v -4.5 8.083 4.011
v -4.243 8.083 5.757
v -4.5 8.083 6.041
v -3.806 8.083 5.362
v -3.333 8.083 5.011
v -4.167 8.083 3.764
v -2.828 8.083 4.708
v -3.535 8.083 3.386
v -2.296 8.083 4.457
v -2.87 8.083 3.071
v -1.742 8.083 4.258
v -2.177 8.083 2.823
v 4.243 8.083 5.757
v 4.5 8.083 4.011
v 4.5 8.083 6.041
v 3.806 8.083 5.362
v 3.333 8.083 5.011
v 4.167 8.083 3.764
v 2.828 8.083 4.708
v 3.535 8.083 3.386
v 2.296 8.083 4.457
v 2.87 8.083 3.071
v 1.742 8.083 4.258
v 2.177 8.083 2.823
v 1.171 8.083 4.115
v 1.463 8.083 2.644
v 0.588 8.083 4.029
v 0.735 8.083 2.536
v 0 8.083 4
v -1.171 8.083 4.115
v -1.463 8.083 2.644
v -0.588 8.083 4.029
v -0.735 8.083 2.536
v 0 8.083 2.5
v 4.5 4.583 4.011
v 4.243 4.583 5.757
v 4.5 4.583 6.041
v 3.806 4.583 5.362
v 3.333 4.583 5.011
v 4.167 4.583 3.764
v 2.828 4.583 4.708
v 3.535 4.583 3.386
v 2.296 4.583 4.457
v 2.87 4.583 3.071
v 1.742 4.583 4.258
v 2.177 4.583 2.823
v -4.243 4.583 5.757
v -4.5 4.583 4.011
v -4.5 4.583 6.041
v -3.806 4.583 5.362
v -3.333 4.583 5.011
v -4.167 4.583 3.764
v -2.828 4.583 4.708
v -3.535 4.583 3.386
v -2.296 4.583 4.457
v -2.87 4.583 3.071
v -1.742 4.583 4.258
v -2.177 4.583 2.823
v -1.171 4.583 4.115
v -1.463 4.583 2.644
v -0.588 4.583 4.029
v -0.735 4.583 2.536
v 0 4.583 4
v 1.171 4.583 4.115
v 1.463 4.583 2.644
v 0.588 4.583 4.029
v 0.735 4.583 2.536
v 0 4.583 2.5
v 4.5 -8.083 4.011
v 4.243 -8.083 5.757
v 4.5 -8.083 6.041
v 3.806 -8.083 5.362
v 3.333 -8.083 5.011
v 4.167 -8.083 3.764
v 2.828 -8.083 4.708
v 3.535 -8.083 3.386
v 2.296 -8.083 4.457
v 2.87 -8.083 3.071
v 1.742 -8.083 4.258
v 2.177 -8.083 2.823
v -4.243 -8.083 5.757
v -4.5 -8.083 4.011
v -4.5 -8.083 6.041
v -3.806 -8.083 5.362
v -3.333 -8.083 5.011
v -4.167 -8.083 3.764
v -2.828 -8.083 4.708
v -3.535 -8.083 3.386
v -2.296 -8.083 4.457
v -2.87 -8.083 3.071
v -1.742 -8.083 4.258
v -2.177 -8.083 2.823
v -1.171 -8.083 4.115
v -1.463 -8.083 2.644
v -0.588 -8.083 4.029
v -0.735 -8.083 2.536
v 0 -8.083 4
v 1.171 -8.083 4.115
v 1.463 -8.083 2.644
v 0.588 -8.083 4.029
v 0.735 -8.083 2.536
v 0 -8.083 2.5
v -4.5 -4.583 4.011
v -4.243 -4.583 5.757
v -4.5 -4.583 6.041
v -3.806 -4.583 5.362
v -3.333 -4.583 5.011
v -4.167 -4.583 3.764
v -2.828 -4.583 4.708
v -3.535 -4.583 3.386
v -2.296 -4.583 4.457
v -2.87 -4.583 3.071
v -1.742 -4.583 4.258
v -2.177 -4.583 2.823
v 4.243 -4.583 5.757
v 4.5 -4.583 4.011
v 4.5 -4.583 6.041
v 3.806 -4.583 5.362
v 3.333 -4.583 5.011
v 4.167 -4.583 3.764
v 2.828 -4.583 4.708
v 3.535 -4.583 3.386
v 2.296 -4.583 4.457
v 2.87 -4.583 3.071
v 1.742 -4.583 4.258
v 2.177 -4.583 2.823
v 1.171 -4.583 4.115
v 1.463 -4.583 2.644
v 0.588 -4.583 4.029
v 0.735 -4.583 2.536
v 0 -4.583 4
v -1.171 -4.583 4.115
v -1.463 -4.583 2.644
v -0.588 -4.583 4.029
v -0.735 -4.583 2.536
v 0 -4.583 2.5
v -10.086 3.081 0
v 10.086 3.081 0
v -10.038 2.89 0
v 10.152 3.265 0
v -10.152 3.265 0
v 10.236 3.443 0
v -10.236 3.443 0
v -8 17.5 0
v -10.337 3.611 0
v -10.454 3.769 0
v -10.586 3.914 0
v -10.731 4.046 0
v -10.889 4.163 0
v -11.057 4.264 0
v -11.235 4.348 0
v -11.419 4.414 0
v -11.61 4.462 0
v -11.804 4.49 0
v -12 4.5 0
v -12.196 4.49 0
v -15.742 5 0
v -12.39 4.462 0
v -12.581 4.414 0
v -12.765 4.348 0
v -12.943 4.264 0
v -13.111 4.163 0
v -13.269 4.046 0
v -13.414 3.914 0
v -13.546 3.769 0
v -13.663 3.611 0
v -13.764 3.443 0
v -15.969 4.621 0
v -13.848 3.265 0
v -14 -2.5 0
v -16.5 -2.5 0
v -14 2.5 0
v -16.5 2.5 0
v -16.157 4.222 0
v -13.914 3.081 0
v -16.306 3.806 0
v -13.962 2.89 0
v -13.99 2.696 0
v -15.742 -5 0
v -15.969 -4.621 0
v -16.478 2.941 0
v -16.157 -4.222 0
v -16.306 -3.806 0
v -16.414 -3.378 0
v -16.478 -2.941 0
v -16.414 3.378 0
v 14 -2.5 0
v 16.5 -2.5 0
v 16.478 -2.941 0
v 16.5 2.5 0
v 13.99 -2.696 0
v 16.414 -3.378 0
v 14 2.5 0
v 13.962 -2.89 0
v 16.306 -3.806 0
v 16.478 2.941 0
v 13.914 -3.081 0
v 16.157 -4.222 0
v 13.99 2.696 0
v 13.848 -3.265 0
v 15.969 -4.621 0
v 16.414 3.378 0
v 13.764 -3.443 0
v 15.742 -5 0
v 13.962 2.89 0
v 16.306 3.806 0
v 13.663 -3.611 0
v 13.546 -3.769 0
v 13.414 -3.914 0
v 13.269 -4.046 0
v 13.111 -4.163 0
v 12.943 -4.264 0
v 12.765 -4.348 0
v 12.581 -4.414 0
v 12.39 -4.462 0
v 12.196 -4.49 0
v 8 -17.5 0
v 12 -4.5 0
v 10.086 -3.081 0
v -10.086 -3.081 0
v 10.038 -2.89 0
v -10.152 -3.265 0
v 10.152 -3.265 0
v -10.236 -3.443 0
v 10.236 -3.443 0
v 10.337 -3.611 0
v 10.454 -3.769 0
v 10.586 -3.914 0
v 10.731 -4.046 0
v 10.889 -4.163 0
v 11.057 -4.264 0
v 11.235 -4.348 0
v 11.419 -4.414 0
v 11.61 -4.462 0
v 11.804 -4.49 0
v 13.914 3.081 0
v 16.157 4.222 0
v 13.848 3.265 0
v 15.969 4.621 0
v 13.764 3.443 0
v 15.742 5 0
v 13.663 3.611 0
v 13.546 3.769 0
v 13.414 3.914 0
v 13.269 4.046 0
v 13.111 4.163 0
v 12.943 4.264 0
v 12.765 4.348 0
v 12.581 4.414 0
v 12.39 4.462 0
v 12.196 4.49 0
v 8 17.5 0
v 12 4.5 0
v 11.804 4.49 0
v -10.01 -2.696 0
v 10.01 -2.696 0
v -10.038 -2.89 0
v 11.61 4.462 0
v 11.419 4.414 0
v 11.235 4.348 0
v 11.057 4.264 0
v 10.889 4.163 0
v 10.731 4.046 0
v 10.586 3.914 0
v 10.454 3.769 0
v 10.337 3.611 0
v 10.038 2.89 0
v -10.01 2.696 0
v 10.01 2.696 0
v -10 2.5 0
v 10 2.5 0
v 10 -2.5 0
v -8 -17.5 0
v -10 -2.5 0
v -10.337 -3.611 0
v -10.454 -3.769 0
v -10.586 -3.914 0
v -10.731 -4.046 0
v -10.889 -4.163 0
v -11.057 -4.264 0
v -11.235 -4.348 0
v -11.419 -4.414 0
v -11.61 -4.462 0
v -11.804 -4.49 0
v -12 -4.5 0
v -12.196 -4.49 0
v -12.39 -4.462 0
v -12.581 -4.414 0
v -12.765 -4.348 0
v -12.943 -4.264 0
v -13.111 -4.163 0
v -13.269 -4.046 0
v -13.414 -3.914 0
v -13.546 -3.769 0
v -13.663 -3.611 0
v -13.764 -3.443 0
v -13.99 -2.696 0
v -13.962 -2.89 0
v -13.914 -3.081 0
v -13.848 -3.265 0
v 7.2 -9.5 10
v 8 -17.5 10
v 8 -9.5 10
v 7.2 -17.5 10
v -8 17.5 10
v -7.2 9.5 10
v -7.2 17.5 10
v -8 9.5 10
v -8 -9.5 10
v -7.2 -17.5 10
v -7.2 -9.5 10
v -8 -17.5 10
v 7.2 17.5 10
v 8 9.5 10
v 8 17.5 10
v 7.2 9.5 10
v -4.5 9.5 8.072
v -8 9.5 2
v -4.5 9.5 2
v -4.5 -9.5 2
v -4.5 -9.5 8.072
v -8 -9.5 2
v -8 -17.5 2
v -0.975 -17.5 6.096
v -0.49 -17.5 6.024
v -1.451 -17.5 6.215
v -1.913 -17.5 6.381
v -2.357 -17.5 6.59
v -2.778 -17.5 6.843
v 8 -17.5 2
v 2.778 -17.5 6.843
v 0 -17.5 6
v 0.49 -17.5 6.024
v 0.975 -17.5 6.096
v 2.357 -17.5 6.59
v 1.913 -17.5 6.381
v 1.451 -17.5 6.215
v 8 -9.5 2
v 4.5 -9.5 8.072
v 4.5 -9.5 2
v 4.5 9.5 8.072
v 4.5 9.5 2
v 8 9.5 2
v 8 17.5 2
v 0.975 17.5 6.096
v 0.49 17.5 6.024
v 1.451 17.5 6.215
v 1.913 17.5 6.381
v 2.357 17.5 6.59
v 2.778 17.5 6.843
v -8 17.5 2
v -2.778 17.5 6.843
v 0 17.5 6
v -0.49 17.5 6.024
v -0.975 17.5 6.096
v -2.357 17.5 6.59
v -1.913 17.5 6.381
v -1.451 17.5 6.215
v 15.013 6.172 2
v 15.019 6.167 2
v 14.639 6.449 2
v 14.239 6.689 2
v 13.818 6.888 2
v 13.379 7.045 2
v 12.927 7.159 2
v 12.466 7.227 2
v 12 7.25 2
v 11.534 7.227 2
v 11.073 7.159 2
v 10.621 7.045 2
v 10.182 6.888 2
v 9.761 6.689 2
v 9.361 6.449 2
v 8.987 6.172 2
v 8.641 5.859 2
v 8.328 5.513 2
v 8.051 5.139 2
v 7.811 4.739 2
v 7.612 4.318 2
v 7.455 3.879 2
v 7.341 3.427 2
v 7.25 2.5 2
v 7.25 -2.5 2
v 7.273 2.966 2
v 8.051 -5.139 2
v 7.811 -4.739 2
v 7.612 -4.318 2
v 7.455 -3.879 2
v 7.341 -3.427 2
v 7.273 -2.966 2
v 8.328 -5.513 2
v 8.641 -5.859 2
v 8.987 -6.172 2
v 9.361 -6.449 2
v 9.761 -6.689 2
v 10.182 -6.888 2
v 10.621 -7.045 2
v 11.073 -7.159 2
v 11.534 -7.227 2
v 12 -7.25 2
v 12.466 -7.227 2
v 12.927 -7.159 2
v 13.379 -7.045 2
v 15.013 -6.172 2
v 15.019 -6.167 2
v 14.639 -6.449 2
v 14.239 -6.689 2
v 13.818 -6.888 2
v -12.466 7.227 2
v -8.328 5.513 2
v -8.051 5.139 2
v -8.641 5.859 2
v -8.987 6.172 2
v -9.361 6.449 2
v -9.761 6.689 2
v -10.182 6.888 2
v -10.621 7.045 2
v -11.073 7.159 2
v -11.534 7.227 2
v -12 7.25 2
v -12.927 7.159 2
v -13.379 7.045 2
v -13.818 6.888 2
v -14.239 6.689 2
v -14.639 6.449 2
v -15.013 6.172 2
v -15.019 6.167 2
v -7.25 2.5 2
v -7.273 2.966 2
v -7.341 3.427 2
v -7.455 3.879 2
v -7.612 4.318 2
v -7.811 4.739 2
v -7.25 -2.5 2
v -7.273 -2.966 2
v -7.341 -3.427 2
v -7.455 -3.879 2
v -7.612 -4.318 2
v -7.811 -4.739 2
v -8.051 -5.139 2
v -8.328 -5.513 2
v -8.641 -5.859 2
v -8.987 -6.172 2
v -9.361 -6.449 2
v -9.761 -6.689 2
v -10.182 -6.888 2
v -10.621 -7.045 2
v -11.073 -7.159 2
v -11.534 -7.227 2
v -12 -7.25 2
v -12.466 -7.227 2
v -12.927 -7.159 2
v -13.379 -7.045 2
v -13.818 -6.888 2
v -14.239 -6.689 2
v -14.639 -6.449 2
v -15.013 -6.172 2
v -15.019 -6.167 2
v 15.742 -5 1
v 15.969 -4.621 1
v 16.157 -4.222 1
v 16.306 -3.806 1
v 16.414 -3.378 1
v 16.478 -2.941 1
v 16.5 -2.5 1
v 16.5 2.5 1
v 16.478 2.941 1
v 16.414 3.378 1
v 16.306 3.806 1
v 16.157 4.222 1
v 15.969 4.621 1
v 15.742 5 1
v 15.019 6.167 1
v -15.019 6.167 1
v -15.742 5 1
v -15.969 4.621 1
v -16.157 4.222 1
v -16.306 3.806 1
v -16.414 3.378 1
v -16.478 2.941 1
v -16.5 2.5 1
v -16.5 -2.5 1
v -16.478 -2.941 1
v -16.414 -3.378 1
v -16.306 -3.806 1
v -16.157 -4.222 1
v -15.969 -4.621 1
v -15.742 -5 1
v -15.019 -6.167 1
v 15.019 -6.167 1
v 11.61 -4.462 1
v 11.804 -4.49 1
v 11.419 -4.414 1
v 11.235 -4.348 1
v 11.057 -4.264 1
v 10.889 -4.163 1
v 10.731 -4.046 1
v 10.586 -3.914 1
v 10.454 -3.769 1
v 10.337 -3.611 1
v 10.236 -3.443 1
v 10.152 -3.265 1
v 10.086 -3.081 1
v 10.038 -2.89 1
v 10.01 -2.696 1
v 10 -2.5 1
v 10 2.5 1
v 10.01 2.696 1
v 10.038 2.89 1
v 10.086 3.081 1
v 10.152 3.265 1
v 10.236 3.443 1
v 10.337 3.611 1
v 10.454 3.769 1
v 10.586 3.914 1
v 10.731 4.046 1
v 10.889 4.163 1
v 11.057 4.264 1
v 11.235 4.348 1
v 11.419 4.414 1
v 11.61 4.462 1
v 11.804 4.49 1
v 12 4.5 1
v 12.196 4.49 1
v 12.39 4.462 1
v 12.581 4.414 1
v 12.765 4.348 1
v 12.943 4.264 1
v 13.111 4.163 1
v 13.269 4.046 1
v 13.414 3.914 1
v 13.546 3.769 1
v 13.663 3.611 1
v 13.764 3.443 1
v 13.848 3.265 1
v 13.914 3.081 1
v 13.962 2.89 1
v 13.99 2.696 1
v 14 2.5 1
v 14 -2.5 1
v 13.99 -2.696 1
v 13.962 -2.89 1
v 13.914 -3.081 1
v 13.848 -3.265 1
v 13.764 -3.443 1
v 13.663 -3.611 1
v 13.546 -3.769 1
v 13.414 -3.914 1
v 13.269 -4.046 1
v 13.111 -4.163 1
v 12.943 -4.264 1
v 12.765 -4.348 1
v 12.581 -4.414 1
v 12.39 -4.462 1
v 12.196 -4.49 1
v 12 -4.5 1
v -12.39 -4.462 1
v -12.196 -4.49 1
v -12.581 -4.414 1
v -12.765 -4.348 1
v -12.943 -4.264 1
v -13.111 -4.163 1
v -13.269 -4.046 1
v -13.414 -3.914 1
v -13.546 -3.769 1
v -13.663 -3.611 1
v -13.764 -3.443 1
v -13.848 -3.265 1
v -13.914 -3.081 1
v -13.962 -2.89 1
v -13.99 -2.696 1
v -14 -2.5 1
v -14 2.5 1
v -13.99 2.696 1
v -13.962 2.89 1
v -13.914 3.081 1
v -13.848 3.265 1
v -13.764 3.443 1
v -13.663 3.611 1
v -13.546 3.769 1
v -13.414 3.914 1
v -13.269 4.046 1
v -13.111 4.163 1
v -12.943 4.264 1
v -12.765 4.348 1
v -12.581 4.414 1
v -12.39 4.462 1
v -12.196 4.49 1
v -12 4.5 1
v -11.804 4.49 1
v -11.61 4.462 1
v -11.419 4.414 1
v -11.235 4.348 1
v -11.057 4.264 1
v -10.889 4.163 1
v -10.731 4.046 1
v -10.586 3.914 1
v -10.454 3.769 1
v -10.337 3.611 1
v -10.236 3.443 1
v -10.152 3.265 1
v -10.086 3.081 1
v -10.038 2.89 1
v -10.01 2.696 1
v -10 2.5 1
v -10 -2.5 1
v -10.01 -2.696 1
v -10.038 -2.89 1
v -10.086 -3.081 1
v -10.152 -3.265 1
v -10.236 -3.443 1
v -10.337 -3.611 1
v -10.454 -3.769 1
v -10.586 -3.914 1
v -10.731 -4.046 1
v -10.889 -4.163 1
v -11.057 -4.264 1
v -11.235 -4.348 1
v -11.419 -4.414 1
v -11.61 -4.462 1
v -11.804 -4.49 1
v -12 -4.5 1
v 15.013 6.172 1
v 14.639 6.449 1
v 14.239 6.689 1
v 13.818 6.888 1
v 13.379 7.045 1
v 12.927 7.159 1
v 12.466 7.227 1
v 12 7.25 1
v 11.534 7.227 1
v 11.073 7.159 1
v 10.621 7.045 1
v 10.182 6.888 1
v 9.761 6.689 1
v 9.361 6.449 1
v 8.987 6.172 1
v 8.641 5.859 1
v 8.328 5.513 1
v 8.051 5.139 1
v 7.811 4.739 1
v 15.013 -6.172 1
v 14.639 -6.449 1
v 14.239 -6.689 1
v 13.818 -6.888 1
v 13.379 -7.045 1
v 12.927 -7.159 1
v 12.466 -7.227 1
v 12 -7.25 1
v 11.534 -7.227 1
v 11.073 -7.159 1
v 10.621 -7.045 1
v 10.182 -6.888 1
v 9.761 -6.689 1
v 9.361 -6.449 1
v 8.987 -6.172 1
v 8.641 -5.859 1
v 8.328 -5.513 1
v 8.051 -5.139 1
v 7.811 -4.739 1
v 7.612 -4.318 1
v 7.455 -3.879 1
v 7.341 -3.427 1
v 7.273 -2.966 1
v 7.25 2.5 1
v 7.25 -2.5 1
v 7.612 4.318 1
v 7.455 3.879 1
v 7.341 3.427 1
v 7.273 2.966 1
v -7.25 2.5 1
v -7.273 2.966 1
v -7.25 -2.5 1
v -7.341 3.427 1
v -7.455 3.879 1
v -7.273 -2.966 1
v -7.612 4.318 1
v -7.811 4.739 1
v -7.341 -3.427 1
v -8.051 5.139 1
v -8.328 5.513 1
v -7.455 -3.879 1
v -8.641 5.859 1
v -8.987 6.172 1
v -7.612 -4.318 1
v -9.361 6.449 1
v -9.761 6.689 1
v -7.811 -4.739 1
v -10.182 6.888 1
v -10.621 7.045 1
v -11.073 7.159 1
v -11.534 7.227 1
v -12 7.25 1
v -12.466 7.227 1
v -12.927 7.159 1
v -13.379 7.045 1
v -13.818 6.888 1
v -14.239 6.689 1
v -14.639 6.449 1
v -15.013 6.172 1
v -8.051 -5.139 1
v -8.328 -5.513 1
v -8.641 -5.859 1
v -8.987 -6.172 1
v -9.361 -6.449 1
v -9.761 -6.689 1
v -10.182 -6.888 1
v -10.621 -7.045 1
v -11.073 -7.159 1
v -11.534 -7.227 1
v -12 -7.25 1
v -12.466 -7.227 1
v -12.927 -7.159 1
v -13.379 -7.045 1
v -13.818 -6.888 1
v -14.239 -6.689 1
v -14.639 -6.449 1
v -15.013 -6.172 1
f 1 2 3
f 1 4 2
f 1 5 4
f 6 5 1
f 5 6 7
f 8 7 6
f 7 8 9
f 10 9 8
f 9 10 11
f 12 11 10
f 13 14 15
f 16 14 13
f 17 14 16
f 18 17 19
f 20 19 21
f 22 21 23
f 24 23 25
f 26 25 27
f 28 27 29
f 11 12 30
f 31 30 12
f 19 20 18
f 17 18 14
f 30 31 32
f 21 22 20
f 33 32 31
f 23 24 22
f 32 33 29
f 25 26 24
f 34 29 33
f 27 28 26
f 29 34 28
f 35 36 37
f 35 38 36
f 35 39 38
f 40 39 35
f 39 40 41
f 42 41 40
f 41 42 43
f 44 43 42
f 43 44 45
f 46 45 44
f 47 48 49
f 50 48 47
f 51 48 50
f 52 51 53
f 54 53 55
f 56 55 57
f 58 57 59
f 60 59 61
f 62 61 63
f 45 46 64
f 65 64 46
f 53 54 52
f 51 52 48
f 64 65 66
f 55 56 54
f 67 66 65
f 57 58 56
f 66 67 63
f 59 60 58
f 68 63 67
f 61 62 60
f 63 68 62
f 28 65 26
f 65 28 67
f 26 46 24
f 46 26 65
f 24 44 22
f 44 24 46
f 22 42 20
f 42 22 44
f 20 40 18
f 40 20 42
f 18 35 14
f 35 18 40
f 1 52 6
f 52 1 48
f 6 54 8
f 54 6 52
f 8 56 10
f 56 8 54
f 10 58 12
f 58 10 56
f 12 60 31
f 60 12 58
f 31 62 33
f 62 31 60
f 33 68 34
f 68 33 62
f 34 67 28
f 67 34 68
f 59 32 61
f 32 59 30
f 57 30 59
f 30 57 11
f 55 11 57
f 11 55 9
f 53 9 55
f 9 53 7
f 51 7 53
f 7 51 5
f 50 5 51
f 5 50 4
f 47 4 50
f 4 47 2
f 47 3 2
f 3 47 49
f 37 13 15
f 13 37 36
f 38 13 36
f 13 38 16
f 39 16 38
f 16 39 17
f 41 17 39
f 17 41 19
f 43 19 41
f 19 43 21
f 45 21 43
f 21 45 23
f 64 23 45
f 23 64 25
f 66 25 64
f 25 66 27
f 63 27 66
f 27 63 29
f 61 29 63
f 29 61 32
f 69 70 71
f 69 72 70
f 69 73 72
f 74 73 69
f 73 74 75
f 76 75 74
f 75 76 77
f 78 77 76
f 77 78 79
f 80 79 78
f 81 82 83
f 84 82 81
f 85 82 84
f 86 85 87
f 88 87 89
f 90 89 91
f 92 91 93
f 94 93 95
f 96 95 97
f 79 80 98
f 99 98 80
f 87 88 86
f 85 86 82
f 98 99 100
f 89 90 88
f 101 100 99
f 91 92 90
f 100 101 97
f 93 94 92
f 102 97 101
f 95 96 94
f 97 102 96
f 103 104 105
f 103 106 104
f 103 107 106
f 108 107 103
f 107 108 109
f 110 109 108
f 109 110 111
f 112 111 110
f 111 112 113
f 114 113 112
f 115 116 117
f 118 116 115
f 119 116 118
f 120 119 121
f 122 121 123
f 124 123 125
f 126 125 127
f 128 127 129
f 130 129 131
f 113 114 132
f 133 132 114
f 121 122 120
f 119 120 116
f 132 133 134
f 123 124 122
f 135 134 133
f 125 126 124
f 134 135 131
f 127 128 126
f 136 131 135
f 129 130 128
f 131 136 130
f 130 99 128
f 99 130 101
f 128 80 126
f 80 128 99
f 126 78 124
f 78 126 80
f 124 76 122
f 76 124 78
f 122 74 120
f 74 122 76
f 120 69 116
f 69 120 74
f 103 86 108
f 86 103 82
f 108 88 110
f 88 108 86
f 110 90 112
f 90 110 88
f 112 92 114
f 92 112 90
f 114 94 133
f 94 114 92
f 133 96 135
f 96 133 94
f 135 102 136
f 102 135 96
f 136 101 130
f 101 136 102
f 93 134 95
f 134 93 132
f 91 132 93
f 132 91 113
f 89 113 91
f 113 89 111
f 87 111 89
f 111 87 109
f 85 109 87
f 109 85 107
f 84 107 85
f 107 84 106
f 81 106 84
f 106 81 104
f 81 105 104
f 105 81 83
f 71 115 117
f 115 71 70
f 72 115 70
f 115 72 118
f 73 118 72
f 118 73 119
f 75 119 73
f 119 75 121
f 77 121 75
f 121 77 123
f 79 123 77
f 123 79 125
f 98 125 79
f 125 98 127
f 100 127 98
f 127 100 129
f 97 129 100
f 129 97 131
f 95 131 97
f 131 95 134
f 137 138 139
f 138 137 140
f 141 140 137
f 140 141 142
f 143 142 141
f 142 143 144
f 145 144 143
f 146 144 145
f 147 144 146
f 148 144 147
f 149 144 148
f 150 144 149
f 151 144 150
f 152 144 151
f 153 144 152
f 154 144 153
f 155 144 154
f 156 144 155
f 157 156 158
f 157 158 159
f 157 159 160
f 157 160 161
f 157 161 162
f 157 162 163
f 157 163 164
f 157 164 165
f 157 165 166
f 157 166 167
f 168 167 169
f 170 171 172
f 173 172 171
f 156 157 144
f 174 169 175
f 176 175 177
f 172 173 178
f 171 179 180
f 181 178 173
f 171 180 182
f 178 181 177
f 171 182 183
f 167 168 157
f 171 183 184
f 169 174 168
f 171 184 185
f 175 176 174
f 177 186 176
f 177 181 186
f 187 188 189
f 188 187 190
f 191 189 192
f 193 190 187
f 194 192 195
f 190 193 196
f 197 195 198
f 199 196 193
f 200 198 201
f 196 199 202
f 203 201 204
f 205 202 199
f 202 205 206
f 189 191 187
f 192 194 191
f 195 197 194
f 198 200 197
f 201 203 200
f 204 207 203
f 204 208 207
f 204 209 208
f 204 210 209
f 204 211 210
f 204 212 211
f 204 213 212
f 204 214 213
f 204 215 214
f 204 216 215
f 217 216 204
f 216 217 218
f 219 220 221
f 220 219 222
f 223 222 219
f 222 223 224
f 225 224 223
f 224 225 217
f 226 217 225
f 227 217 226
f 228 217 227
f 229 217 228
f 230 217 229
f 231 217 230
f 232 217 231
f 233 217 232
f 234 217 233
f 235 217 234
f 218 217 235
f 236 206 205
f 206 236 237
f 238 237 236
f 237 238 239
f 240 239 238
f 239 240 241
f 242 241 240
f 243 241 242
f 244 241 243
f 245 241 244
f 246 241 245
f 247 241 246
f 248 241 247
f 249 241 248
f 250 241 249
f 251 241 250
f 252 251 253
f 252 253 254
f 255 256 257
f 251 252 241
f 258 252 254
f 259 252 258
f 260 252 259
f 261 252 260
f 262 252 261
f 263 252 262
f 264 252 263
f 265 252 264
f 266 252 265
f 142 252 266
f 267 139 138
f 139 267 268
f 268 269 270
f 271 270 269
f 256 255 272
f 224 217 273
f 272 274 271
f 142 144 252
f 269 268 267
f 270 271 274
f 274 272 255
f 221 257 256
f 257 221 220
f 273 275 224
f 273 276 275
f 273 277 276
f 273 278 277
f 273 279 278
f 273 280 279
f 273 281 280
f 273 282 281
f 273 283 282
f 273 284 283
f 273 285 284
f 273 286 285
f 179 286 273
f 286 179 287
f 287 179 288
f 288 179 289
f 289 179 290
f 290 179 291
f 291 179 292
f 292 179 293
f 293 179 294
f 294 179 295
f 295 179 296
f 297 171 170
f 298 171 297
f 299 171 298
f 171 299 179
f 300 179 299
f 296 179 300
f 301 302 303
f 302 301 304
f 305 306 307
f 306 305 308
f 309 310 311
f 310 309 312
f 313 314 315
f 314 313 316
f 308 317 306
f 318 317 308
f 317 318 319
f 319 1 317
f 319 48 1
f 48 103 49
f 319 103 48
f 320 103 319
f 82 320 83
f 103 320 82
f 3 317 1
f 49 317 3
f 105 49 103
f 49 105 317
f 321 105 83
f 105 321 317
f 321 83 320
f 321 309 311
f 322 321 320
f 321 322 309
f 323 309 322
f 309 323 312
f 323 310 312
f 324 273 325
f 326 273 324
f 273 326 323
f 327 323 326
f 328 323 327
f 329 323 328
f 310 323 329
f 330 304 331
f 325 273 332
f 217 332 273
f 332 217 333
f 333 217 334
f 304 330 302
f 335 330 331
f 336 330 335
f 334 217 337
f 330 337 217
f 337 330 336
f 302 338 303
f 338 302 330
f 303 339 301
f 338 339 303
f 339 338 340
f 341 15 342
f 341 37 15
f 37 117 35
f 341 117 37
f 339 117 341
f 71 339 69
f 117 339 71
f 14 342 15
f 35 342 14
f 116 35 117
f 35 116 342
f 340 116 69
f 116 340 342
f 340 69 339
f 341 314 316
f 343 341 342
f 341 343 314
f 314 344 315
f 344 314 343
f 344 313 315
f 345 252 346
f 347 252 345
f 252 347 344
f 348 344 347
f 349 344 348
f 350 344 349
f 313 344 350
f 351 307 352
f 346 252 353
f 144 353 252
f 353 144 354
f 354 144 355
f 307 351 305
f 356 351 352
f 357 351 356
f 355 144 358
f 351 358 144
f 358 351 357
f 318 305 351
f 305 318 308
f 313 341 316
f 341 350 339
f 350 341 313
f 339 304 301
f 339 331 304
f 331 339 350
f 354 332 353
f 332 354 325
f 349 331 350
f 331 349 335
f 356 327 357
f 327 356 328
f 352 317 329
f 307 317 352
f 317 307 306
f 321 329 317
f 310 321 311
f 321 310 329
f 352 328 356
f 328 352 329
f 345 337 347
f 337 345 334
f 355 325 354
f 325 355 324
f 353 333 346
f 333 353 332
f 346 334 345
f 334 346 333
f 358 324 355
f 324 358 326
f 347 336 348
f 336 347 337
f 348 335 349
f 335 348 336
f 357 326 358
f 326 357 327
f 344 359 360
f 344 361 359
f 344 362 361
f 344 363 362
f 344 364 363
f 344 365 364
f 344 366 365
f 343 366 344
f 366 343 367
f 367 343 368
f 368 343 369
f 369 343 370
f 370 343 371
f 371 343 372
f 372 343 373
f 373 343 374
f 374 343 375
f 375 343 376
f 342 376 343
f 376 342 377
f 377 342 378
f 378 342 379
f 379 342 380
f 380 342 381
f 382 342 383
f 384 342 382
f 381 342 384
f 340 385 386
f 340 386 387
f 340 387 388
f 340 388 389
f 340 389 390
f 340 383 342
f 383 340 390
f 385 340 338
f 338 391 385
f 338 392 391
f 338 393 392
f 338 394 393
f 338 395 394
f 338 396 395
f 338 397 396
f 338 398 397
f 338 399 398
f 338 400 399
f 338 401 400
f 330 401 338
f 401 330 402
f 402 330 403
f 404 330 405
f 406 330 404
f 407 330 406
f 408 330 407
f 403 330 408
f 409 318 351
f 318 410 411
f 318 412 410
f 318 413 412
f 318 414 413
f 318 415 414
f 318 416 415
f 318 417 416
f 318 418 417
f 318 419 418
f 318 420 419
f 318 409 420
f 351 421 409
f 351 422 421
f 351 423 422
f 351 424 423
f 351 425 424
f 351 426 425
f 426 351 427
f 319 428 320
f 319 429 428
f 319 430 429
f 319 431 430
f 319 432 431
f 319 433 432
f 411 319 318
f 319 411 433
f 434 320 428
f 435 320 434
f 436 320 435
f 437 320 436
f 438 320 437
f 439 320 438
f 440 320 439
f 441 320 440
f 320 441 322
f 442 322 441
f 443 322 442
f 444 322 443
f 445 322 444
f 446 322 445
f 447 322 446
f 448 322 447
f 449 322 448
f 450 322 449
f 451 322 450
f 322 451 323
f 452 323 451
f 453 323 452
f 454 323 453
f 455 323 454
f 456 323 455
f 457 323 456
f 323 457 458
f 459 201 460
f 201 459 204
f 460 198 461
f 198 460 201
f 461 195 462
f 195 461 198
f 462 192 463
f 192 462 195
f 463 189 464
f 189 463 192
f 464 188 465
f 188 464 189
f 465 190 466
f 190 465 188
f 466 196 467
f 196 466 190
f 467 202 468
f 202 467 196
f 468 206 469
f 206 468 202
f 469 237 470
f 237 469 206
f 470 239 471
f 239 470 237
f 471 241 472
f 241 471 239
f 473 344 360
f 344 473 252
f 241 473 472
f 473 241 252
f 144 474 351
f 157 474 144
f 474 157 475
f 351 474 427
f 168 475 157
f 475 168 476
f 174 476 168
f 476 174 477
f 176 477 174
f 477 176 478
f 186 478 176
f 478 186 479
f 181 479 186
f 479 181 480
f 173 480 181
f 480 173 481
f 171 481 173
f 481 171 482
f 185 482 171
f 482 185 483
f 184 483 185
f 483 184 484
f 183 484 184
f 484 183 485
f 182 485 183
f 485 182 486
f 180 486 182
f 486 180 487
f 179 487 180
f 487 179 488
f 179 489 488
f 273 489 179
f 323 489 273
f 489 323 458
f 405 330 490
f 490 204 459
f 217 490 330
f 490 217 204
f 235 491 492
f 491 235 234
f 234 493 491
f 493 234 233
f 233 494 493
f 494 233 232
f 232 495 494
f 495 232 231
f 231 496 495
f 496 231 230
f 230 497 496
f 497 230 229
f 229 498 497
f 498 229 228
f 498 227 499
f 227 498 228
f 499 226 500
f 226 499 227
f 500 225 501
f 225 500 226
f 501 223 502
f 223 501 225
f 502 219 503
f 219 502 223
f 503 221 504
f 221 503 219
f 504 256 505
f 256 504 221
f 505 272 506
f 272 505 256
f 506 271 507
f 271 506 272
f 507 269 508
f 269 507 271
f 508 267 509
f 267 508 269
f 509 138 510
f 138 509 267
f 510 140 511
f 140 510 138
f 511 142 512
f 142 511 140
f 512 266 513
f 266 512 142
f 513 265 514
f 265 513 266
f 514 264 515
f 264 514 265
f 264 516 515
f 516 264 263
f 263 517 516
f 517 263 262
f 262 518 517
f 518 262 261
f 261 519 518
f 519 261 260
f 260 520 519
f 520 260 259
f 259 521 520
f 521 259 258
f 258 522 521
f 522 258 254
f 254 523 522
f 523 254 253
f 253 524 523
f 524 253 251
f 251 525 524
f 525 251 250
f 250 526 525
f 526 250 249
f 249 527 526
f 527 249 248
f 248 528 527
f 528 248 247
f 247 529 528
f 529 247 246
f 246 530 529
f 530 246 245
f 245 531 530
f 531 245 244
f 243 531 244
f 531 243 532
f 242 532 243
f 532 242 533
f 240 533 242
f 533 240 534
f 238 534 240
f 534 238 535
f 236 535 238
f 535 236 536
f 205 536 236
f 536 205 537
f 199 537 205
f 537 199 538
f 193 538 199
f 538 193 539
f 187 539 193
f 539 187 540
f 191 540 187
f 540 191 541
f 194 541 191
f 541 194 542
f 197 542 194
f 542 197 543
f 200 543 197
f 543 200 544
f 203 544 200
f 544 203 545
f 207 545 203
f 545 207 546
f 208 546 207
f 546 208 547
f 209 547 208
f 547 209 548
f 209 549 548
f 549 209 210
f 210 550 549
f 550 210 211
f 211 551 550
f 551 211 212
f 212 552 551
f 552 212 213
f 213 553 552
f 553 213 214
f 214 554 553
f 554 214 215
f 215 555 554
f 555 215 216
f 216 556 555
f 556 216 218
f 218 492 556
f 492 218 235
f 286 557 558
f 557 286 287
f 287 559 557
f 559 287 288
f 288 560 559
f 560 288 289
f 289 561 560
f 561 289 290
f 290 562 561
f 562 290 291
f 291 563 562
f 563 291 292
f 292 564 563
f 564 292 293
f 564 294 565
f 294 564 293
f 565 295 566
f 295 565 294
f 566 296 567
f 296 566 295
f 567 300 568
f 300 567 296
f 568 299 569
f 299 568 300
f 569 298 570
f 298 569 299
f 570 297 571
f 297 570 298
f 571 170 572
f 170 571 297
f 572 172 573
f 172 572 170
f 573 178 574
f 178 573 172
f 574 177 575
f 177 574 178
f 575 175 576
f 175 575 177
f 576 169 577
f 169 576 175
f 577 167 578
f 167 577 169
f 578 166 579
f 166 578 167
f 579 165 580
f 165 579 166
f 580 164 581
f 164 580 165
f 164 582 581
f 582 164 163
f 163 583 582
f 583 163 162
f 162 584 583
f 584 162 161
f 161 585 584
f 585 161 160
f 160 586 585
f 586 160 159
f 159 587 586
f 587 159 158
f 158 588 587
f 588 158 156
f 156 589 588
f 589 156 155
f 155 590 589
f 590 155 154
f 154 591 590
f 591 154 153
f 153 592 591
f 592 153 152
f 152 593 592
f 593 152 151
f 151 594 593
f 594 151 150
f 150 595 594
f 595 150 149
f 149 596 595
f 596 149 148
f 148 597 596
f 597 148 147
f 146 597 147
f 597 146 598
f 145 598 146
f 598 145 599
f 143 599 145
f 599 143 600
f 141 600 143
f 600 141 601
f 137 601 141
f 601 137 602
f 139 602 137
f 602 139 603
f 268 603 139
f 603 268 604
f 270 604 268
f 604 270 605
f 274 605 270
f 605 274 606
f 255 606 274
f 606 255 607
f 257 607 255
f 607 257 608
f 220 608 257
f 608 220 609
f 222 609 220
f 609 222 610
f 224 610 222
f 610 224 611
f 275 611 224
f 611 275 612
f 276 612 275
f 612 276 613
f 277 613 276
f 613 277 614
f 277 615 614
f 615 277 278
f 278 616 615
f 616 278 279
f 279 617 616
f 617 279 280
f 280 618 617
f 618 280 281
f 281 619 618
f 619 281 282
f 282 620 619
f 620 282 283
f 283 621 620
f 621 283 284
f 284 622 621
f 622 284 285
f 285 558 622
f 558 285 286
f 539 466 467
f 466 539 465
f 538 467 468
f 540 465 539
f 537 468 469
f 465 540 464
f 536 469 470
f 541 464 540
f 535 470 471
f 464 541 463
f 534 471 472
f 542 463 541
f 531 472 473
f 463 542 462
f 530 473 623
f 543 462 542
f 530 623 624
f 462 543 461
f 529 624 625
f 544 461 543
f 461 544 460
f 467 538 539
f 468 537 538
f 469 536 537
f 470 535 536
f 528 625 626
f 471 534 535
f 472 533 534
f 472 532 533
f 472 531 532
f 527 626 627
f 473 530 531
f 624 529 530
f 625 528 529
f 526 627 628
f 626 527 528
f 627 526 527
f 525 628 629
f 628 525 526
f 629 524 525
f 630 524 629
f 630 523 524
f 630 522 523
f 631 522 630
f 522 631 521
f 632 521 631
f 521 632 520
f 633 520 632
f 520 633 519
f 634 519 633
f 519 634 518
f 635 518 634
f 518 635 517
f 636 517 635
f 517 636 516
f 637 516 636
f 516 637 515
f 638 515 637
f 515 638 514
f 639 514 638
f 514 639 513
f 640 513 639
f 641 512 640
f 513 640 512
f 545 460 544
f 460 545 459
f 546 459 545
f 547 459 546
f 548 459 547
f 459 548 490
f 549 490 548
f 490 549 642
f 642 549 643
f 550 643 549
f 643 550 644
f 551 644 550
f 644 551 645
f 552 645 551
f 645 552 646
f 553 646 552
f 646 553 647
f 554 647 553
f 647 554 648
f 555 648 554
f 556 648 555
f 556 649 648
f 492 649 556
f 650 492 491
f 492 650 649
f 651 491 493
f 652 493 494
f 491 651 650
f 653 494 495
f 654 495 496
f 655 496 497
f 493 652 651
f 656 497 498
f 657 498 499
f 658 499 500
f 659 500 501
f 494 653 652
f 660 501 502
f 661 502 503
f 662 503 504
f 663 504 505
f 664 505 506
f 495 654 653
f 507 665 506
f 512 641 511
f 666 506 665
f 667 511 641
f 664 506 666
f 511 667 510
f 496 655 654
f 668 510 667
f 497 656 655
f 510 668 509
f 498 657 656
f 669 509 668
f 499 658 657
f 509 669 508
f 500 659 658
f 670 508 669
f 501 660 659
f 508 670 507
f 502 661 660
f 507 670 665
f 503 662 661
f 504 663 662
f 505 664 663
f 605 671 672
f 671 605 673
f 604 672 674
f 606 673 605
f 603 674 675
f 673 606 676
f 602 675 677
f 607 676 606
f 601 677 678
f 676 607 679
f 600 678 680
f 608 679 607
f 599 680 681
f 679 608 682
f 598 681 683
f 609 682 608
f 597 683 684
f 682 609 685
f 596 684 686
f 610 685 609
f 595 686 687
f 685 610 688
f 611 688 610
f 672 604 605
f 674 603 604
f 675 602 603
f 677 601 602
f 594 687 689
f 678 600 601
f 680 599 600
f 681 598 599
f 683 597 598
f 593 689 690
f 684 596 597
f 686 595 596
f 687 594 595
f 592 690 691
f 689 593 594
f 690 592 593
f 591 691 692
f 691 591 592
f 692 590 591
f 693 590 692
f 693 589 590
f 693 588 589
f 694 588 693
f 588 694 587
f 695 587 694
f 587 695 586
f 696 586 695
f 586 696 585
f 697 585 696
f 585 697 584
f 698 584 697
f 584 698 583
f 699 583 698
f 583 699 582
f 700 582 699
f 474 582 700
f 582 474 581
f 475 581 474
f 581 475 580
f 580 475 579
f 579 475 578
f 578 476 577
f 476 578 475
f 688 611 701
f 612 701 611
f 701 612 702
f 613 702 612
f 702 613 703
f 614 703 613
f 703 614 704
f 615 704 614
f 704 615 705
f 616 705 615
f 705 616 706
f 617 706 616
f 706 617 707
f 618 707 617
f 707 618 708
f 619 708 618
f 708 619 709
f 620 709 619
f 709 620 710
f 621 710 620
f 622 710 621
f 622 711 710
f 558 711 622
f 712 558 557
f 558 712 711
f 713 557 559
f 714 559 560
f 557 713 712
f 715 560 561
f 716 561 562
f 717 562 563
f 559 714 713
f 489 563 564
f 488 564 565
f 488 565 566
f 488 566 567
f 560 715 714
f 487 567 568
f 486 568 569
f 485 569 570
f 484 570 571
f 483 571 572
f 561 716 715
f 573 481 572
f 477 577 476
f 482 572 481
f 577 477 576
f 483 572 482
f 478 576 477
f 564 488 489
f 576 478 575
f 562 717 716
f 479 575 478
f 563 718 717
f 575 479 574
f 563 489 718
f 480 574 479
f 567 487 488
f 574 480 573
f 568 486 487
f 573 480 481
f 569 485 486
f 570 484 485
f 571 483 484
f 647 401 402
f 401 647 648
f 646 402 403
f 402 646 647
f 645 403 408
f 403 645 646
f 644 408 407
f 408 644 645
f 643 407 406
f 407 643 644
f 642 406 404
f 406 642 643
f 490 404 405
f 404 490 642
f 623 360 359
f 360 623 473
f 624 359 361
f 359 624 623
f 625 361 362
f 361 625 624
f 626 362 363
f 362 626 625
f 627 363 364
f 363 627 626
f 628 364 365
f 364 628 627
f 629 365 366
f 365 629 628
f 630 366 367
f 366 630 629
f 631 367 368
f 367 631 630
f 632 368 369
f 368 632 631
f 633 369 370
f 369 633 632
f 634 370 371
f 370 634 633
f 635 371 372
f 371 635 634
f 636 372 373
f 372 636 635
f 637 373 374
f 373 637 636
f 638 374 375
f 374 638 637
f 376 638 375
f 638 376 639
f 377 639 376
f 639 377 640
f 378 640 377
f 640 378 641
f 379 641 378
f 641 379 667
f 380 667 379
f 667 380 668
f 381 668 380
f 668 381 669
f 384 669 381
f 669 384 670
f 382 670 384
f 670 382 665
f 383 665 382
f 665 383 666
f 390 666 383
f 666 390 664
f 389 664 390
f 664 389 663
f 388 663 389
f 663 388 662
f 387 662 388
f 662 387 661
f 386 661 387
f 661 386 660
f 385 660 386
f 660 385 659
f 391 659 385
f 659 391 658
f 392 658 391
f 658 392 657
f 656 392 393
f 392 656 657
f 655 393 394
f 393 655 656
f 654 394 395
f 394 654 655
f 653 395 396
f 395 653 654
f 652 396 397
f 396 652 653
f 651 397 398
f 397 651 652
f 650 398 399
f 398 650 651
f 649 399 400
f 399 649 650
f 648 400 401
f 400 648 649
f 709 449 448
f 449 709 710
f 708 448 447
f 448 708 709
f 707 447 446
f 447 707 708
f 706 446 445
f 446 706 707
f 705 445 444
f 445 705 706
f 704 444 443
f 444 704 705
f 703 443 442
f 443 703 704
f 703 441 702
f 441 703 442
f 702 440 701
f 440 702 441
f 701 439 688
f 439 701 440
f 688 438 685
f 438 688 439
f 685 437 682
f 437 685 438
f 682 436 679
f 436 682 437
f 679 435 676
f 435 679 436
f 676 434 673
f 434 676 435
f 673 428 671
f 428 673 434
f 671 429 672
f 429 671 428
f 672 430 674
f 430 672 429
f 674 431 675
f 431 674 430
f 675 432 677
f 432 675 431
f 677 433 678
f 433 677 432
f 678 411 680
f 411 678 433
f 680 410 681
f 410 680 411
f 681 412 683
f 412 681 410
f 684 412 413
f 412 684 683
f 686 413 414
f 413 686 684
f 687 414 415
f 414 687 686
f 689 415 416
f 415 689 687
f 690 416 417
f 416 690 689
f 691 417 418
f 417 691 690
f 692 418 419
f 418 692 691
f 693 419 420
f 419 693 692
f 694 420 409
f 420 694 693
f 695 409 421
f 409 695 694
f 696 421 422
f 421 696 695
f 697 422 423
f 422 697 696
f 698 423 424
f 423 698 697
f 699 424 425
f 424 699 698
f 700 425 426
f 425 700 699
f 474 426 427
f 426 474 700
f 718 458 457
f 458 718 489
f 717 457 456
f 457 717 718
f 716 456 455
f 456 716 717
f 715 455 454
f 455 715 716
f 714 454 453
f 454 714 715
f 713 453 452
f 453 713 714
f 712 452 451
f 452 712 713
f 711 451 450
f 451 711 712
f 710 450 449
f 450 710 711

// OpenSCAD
$fn = 64;
nozzle = 0.4;
BIAS   = 0.1;

SwitchCoilBracket();

module SwitchCoilBracket(
    w1 = 9,
    w2 = 16,
    l  = 35,
    l1 = 8,
    l2 = 20 + 4,
    h  = 10,
    h1 = 2,
    h2 = 1,
    d1 = 10,
    d2 =  4,
    d3 =  9.5,
    a  =  5,
    b  =  5,
    c  =  3.5,
    d  =  3.0,
    e  =  2.0,
    f  =  1.0
) {
    difference() {
        Base();
        Trench();
        ZipTieHoles();
    }
    Foot();

    module Base() {
        linear_extrude(h, convexity=2) {
            square([
                w1,
                l
            ], true);
            mirror_copy([0, 1]) {
                translate([
                    0,
                    (l - l1) / 2
                ]) square([
                    w2,
                    l1
                ], true);
            }
        }
    }

    module Trench() {
        translate([0, 0, h]) {
            rotate(90, [1, 0, 0]) {
                linear_extrude(
                    l + BIAS,
                    center    = true,
                    convexity = 2
                ) {
                    hull() {
                        translate([
                            0,
                            1
                        ])square([
                            w2 - 4 * nozzle,
                            2
                        ], true);
                        translate([0, f]) {
                            circle(d=d1);
                        }
                    }
                }
            }
        }
    }
    module Foot() {
        difference() {
            linear_extrude(h1, convexity=2) {
                difference() {
                    hull() {
                        square([
                            w2,
                            l
                        ], true);
                        mirror_copy([1, 0]) {
                            t() circle(d= d2 + a);
                        }
                    }
                    mirror_copy([1, 0]) {
                        hull() {
                            t() circle(d= d2);
                        }
                    }
                }
            }
            translate([0, 0, h2]) linear_extrude(h1) {
                mirror_copy([1, 0]) {
                    hull() {
                        t() circle(d= d3);
                    }
                }
            } 
        }
        
        module t() {
            mirror_copy([0, 1]) {
                translate([
                    l2 / 2,
                    b / 2 
                ]) {
                    children();
                }
            }
        }
    }

    module ZipTieHoles() {
        mirror_copy([0,1]) {
            translate([0, (l / 2 - l1) * 2/3, h]) {
                rotate(90, [1, 0, 0]) {
                    linear_extrude(
                        c,
                        center = true
                    ) {
                        difference() {
                            circle(d=d1 + e + d);
                            circle(d=d1 + e);
                        }
                    }
                }
            }
        }
    }
}

module mirror_copy(vec) {
    children();
    mirror(vec) children();
}
